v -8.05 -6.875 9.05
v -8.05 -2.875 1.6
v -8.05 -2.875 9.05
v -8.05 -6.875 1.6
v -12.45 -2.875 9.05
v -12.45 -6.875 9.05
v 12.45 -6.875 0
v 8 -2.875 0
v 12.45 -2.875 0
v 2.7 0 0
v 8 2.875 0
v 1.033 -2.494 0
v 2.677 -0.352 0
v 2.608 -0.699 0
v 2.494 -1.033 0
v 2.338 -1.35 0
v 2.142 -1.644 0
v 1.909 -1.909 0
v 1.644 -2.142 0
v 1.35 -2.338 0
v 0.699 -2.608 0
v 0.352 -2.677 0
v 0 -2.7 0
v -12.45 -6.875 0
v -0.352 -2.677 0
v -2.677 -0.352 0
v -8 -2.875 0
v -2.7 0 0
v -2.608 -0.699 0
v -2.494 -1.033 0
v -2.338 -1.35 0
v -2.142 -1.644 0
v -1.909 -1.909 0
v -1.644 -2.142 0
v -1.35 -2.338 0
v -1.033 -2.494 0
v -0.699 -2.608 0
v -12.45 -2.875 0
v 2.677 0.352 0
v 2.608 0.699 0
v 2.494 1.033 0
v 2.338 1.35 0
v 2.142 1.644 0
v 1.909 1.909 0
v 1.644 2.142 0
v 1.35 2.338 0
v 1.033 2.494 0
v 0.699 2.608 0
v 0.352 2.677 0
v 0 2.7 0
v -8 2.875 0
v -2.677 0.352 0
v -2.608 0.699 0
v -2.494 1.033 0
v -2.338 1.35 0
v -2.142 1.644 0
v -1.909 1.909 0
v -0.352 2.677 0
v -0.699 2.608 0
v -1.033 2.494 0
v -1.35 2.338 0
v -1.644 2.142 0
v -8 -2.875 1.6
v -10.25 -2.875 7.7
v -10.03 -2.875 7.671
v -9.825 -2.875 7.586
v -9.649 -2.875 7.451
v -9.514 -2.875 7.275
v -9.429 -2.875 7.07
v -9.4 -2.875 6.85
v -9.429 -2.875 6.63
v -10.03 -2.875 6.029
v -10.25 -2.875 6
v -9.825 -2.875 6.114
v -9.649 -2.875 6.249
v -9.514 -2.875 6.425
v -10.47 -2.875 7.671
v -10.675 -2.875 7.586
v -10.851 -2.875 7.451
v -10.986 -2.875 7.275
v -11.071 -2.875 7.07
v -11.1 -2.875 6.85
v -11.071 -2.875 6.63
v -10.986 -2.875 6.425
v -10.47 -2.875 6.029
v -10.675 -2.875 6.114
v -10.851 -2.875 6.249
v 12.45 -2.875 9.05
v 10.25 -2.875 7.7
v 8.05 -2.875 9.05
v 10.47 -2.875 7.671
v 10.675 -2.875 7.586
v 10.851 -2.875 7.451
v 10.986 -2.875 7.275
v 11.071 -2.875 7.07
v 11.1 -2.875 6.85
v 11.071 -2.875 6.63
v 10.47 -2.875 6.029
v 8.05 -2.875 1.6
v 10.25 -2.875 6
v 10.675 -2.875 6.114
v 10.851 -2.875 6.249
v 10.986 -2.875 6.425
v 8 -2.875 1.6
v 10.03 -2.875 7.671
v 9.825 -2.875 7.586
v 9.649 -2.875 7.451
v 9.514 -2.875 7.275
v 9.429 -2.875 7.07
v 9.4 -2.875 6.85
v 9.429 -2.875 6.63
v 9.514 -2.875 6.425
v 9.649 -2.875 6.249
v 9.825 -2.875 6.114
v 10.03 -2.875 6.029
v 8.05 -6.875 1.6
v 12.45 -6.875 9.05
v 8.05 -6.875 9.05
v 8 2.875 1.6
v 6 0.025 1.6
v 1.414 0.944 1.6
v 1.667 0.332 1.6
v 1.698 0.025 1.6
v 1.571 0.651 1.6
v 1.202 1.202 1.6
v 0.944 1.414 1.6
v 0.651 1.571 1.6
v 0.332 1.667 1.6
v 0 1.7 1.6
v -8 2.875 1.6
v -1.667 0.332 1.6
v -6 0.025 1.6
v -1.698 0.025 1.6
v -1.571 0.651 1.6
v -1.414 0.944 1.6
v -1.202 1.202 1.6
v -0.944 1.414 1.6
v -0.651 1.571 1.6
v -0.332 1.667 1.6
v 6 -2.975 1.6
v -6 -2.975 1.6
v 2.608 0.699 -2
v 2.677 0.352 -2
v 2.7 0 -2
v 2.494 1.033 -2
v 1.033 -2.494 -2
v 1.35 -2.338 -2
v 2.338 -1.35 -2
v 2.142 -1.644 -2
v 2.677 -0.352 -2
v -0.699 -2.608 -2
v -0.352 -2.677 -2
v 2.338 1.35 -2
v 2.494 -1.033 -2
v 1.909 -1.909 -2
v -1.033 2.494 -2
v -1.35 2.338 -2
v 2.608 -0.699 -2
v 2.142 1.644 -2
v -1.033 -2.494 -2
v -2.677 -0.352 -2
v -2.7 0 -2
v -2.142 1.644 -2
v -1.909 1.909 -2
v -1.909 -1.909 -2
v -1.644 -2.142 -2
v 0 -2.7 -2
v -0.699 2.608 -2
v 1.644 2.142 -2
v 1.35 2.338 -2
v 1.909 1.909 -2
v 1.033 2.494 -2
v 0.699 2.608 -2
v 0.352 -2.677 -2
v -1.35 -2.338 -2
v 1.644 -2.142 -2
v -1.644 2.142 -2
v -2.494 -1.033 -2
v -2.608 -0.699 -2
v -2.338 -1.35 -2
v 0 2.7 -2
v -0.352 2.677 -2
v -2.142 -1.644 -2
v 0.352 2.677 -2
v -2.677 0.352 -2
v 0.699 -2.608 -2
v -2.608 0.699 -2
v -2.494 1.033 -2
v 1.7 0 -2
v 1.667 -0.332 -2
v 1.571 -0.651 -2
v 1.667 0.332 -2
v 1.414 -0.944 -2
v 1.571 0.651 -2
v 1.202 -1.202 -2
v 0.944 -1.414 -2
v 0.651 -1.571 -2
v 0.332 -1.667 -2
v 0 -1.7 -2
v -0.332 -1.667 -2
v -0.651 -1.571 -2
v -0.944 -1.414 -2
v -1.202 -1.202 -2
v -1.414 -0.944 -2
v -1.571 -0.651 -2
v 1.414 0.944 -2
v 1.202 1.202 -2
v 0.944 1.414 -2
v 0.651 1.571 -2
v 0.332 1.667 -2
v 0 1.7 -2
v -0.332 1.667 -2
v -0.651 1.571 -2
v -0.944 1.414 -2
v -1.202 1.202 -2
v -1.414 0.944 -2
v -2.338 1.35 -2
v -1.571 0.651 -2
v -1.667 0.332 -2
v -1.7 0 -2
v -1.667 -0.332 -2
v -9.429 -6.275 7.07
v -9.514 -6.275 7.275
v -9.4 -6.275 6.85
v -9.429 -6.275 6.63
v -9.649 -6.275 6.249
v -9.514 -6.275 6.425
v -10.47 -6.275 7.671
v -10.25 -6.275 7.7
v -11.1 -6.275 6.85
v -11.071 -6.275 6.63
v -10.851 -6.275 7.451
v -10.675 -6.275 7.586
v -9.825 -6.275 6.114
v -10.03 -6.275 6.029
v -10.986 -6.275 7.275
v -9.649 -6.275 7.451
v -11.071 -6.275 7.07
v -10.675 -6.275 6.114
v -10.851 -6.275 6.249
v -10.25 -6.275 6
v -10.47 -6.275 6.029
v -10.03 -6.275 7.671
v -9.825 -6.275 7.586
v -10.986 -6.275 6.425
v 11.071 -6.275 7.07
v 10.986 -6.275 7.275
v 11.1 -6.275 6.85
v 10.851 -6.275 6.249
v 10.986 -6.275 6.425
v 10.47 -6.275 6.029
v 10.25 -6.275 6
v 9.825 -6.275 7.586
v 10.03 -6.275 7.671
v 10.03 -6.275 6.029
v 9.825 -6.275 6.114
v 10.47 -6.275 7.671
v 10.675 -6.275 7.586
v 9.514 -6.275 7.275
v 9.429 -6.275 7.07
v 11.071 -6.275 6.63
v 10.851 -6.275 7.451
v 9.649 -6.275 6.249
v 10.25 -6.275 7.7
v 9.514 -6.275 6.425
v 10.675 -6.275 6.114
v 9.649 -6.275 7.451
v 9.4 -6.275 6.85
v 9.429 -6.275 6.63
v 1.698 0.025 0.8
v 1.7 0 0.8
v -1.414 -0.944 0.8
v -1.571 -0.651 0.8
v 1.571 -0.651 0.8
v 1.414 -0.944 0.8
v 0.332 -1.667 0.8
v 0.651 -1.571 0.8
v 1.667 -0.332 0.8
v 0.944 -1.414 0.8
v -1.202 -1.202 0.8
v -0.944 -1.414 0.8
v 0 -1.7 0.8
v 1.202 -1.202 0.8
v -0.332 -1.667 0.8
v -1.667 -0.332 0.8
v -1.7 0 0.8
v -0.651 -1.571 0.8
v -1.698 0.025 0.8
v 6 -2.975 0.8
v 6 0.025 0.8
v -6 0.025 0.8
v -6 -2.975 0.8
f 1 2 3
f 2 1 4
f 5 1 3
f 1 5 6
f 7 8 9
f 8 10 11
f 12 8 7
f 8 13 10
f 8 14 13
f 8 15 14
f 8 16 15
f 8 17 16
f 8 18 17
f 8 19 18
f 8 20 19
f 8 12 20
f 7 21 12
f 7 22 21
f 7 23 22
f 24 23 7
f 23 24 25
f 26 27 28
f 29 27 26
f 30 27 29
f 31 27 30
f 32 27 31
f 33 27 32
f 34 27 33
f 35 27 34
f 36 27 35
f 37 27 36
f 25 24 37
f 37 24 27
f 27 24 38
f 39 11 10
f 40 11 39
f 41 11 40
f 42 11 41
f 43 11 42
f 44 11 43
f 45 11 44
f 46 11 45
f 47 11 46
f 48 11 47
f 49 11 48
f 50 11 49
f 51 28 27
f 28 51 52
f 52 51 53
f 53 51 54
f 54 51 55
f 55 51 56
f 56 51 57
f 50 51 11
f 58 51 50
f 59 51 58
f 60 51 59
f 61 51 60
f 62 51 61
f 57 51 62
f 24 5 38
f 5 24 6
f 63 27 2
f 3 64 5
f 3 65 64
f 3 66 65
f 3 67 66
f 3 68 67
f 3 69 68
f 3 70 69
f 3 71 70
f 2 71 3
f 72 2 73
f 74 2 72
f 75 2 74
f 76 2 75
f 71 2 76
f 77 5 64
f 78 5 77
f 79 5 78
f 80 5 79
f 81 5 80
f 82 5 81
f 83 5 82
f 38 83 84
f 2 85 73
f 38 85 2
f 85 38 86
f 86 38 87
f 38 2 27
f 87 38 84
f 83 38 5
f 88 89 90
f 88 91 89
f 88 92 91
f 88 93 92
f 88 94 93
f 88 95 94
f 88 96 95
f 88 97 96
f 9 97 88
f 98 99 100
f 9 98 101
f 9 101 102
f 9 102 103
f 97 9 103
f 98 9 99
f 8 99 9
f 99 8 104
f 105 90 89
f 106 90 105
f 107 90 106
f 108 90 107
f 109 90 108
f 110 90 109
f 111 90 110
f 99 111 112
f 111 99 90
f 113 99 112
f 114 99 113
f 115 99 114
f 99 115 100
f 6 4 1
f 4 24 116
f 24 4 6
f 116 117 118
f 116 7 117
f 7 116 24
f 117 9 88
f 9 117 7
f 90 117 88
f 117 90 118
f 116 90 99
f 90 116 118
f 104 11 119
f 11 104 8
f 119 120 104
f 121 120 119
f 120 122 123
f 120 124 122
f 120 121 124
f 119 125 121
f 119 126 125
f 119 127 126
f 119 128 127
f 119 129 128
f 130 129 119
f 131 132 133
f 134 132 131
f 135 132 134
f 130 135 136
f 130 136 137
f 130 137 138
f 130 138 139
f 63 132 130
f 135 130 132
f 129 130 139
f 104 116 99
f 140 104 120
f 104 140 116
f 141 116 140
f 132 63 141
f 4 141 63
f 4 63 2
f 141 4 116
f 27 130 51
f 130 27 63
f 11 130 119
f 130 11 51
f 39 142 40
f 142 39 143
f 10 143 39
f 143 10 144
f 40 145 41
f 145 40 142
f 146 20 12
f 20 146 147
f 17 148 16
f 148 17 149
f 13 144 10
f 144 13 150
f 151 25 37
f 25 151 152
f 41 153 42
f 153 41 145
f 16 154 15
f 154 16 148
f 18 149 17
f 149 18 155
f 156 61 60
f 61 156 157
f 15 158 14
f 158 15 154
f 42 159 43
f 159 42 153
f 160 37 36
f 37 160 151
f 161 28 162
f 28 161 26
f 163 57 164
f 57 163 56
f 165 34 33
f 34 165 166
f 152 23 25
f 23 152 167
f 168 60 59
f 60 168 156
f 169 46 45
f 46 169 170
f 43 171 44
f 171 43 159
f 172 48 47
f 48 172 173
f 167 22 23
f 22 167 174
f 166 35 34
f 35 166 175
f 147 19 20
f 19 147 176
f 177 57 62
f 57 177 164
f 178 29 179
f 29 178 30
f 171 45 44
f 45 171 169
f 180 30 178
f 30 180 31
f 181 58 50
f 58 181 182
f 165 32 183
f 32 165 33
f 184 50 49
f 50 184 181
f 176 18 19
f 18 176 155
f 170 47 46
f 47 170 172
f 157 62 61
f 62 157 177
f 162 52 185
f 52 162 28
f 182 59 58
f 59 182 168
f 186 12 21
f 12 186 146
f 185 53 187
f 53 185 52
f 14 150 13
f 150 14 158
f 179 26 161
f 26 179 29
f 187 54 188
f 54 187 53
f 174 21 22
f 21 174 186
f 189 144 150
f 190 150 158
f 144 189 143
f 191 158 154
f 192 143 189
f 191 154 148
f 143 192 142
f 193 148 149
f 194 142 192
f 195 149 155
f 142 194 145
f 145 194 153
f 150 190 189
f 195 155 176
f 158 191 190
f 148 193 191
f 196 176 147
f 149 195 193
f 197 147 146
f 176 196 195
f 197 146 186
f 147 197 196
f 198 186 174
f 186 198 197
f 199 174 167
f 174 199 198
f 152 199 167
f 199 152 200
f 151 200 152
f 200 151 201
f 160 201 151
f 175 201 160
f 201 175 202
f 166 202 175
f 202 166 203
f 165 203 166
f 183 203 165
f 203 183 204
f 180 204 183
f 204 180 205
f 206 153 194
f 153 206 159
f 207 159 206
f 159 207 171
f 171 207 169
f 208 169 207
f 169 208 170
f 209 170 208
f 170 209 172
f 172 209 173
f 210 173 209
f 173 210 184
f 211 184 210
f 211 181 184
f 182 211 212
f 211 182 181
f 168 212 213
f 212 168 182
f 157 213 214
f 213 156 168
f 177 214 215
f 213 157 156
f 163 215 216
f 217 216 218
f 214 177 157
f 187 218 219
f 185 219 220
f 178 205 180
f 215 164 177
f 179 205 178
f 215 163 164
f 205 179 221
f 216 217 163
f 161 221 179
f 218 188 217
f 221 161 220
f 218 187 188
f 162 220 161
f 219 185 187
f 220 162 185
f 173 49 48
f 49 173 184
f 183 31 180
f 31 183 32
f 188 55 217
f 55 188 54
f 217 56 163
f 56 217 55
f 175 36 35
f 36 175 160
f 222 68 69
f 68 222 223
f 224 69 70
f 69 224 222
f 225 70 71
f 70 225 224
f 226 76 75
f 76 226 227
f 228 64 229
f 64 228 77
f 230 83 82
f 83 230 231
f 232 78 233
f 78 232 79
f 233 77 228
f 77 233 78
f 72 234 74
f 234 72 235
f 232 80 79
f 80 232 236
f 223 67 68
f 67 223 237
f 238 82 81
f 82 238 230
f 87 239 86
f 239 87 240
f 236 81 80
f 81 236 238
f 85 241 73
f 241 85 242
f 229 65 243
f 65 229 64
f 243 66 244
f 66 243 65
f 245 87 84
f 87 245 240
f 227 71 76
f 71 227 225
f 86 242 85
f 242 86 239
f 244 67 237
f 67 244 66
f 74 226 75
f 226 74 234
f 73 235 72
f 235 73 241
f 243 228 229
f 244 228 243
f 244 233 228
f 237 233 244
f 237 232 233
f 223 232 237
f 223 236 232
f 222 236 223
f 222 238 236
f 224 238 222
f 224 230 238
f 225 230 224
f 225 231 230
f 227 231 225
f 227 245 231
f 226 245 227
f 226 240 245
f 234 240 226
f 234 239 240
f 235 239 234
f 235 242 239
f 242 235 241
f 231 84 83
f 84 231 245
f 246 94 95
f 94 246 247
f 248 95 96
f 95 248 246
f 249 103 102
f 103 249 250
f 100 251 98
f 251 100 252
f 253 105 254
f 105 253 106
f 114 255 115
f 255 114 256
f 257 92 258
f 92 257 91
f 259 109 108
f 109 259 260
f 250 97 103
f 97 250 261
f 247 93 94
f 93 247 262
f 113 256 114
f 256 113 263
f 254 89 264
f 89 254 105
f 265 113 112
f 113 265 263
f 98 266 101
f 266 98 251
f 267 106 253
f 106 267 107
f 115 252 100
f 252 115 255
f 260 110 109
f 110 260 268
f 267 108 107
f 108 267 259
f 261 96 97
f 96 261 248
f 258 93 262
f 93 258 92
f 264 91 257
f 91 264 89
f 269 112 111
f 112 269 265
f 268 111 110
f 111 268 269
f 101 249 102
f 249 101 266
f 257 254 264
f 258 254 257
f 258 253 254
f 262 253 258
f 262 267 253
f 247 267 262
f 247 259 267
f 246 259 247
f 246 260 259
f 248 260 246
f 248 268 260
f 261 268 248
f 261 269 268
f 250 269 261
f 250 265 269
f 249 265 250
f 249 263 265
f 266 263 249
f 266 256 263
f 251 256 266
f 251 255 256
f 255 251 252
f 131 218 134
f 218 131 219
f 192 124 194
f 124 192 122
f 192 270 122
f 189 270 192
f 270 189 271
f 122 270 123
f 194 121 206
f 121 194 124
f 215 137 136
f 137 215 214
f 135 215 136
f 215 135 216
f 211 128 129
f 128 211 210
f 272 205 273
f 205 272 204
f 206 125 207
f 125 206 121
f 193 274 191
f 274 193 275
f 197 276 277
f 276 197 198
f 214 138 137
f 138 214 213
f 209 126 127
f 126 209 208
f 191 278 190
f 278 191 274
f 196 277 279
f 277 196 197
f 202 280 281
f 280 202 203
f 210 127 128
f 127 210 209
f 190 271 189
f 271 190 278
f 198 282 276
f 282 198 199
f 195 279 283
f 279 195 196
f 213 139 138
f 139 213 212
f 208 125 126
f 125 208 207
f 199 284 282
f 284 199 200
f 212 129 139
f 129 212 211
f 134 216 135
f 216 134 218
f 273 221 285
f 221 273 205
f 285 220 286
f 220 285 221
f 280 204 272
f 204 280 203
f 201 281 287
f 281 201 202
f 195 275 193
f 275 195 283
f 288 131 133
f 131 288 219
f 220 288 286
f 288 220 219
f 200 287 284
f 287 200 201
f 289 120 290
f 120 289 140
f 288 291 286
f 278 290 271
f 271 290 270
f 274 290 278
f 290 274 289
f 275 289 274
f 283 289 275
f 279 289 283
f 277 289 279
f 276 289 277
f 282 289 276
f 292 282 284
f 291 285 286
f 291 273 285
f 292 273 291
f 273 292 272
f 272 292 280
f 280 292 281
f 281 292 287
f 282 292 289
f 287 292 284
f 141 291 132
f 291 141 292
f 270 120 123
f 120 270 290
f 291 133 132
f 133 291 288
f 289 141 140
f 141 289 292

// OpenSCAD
vista = "pieza";

tof_largo = 25;
tof_cuerpo_largo = 16;
tof_ancho = 10.5;
tof_espesor = 5.5;
tof_pcb = 1.6;
tof_oreja_largo = (tof_largo - tof_cuerpo_largo) / 2;
tof_oreja_ancho = 6;
tof_oreja_alto = 6;
tof_sensor_largo = 5;
tof_sensor_ancho = 4;
tof_sensor_alto = 1.1;
tof_sensor_desde_borde = 6;
tof_oreja_tornillo_d = 2.2;

hueco_x = 10.5;
hueco_y = 5.7;
grosor_tapa = 2;
z_tapa_sup = 46.9;
tapa_ancho = 86.4;
tapa_largo = 67.2;
tapa_z0 = 40.15;

hol = 0.25;
pared_s = 0.8;
base_s = 1.6;
base_centro_largo = 16;
poste_ancho = 4.4;
poste_prof = 4;
tornillo_d = 2.2;
piloto_d = 1.7;
boss_d = 5.4;
boss_h = grosor_tapa;
cable_d = 3.4;

x_huecos = [-33, -6, 21];
y_frente = 27.89;
y_atras = -15.67;

// [x_hueco, y_hueco, dx, rumbo]: 0 = mira a +y, positivo = gira a la izquierda
// orden: AI, AC, AD, BI, BC, BD (cada cara es la otra girada 180 grados)
psi = 20;
soportes = [
	[x_huecos[0], y_frente, 0, psi],
	[x_huecos[1], y_frente, 0, 0],
	[x_huecos[2], y_frente, 0, -psi],
	[x_huecos[2], y_atras, 0, 180 + psi],
	[x_huecos[1], y_atras, 0, 180],
	[x_huecos[0], y_atras, 0, 180 - psi]
];

module tof_modelo() {
	x0 = (tof_largo - tof_cuerpo_largo) / 2;
	color([0.1, 0.35, 0.6]) {
		translate([x0, 0, 0])
			cube([tof_cuerpo_largo, tof_ancho, tof_pcb]);
		for (sx = [0, 1])
			difference() {
				translate([sx ? x0 + tof_cuerpo_largo : 0, (tof_ancho - tof_oreja_ancho) / 2, 0])
					cube([tof_oreja_largo, tof_oreja_ancho, tof_pcb]);
				translate([sx ? tof_largo - tof_oreja_largo / 2 : tof_oreja_largo / 2, tof_ancho / 2, -1])
					cylinder(d=tof_oreja_tornillo_d, h=tof_pcb + 2, $fn=24);
			}
	}
	color([0.15, 0.15, 0.15])
		translate([x0 + tof_sensor_desde_borde, (tof_ancho - tof_sensor_ancho) / 2, tof_pcb])
			cube([tof_sensor_largo, tof_sensor_ancho, tof_espesor - tof_pcb]);
}

module tof_en_pie() {
	rotate([90, 0, 180])
		translate([-tof_largo / 2, -tof_ancho / 2, -tof_espesor / 2])
			tof_modelo();
}

module soporte_tof(fijo = false) {
	T = tof_espesor + hol;
	y_poste = -T / 2;
	x_oreja = tof_cuerpo_largo / 2 + tof_oreja_largo / 2;
	z_tornillo = base_s + tof_ancho / 2;
	alto_poste = z_tornillo + poste_ancho / 2;
	x_poste = x_oreja + poste_ancho / 2;
	z_ini = fijo ? -0.1 : 0;

	difference() {
		union() {
			translate([-base_centro_largo / 2, y_poste, z_ini])
				cube([base_centro_largo, T, base_s - z_ini]);
			translate([-x_poste, y_poste - poste_prof, z_ini])
				cube([2 * x_poste, poste_prof, base_s - z_ini]);
			for (sx = [-1, 1])
				translate([sx * x_oreja - poste_ancho / 2, y_poste - poste_prof, 0])
					cube([poste_ancho, poste_prof, alto_poste]);
			if (!fijo)
				translate([0, 0, -boss_h])
					cylinder(d=boss_d, h=boss_h + base_s, $fn=48);
		}
		if (!fijo)
			translate([0, 0, -boss_h - 1])
				cylinder(d=cable_d, h=boss_h + base_s + 2, $fn=32);
		translate([-6, y_poste - 0.1, base_s - 0.8])
			cube([12, 3, 1]);
		for (sx = [-1, 1])
			translate([sx * x_oreja, y_poste + 1, z_tornillo])
				rotate([90, 0, 0])
					cylinder(d=piloto_d, h=poste_prof - 0.6 + 1, $fn=24);
	}
}

module soporte_colocado(s, fijo = false) {
	translate([s[0] + s[2], s[1], z_tapa_sup])
		rotate([0, 0, s[3]])
			soporte_tof(fijo);
}

module tof_colocado(s) {
	translate([s[0] + s[2], s[1], z_tapa_sup + base_s + tof_ancho / 2])
		rotate([0, 0, s[3]])
			tof_en_pie();
}

if (is_undef(ensamble) && vista == "pieza")
	soporte_tof(false);
